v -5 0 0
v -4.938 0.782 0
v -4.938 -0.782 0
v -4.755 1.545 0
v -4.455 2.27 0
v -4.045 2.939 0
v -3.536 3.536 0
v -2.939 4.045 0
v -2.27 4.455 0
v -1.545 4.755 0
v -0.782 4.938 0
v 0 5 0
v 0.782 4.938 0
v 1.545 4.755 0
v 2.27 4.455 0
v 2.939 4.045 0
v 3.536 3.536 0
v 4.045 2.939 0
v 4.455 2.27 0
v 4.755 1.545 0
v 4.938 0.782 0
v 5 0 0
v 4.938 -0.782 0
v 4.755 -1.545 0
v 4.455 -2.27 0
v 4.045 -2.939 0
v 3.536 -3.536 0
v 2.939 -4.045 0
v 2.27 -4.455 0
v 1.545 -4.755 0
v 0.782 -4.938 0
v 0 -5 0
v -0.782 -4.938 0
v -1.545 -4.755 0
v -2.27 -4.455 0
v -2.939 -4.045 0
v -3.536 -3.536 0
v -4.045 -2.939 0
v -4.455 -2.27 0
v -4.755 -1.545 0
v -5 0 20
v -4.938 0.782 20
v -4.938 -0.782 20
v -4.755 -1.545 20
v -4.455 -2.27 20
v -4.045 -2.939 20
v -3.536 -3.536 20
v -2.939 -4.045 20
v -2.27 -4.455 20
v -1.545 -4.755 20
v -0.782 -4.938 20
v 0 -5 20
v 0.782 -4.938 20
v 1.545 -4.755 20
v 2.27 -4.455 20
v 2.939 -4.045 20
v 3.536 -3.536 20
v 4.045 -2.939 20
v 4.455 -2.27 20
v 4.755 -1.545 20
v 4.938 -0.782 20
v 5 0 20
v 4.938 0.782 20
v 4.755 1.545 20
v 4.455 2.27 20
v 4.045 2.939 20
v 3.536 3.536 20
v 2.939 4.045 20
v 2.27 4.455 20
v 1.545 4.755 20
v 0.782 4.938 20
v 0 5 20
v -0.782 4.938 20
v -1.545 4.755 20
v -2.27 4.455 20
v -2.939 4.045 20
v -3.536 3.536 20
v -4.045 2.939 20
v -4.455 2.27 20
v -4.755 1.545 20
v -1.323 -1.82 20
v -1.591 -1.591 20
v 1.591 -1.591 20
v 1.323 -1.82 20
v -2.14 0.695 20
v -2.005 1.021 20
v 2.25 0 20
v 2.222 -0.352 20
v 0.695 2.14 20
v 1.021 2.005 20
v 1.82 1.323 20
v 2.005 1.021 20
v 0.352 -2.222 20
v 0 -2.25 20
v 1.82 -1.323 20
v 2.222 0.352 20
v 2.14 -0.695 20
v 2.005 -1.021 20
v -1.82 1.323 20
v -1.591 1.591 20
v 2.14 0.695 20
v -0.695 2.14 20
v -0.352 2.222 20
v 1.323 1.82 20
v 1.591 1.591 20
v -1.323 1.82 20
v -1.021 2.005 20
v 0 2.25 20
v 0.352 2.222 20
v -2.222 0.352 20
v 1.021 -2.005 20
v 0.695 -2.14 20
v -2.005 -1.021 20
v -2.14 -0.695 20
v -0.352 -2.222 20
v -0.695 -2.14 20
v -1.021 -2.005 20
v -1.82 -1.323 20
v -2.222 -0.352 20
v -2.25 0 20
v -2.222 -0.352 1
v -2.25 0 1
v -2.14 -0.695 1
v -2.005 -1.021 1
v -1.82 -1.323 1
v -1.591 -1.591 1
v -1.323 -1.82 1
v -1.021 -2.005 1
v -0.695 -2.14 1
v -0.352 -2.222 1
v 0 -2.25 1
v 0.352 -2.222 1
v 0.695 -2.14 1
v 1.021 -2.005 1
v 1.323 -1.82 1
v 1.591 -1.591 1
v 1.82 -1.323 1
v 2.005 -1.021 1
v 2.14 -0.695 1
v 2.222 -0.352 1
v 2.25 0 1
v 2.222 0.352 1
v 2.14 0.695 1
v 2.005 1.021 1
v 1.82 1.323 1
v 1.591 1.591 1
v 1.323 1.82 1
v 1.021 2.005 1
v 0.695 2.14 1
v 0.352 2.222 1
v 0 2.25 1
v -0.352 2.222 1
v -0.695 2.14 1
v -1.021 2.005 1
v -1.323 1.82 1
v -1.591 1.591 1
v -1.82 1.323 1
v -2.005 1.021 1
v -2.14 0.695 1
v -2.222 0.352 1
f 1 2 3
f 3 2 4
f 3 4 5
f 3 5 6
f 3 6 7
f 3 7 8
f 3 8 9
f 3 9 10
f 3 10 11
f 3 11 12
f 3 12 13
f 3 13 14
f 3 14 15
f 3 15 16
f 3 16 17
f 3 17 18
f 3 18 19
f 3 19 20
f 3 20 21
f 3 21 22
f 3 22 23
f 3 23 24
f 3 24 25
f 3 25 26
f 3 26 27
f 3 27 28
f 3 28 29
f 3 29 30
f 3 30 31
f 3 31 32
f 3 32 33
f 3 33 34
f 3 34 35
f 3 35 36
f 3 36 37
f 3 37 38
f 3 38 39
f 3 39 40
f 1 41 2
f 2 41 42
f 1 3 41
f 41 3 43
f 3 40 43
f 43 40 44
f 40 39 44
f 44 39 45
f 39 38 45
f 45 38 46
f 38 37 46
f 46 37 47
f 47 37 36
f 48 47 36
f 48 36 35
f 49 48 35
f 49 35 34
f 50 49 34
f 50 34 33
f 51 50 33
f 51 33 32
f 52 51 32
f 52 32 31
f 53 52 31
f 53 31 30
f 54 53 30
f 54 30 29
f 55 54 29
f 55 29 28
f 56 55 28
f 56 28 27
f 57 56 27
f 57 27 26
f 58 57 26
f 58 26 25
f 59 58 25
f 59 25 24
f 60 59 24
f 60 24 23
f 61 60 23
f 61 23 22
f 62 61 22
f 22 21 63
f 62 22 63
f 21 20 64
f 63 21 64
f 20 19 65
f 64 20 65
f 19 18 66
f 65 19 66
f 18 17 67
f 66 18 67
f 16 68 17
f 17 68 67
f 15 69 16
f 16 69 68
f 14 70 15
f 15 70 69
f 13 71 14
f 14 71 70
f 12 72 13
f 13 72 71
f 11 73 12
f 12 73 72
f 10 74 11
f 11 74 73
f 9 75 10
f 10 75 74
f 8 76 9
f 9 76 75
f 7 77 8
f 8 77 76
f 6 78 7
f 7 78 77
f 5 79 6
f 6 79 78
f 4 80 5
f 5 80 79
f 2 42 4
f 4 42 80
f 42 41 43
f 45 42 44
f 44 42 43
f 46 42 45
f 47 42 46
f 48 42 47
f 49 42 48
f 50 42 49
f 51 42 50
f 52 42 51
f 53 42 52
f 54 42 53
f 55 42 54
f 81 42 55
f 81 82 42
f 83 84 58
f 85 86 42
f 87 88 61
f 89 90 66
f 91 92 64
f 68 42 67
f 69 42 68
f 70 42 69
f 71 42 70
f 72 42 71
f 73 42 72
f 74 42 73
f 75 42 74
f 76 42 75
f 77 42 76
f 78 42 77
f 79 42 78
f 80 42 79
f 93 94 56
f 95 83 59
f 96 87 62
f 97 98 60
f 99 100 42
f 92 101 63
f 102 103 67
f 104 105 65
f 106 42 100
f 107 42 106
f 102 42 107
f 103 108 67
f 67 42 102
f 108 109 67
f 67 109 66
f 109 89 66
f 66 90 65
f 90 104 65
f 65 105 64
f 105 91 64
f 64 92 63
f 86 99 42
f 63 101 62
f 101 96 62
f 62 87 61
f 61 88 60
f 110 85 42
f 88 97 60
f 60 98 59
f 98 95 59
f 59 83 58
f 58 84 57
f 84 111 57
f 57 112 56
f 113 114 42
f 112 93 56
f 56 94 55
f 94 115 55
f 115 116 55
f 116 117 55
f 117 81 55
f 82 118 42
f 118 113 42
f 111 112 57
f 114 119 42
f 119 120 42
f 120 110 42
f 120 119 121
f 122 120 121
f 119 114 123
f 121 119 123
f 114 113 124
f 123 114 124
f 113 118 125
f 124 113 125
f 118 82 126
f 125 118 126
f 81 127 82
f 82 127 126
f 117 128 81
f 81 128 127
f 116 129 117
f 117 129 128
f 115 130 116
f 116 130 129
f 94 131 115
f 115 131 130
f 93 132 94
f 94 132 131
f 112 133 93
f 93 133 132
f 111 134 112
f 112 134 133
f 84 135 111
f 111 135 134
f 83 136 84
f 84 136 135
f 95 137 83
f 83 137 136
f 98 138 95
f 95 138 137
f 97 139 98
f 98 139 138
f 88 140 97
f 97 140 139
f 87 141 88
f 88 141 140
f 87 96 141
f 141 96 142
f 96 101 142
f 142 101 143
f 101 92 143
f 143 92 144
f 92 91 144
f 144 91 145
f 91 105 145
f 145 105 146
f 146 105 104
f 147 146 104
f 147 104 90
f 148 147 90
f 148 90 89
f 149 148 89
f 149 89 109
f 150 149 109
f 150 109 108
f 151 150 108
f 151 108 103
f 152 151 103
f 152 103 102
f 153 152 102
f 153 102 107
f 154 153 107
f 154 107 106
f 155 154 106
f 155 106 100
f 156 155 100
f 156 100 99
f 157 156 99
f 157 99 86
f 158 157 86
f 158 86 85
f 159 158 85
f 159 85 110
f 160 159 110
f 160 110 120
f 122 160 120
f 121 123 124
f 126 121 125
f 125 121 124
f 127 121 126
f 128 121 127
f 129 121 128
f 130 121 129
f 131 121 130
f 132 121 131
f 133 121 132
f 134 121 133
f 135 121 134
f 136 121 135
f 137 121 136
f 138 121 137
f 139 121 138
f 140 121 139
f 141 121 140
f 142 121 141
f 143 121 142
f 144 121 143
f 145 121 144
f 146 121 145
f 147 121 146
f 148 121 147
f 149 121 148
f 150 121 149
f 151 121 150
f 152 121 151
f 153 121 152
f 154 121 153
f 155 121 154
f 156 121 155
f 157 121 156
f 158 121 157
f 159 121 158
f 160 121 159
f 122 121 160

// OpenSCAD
$fn=40; // resolution of the arcs

scale([10,10,10]) { // cm to mm scaling

	difference() {
		cylinder(h = 2, r=0.5);
		translate([0,0,0.1])
		cylinder(h = 2.2, r=0.225);
	}

}
